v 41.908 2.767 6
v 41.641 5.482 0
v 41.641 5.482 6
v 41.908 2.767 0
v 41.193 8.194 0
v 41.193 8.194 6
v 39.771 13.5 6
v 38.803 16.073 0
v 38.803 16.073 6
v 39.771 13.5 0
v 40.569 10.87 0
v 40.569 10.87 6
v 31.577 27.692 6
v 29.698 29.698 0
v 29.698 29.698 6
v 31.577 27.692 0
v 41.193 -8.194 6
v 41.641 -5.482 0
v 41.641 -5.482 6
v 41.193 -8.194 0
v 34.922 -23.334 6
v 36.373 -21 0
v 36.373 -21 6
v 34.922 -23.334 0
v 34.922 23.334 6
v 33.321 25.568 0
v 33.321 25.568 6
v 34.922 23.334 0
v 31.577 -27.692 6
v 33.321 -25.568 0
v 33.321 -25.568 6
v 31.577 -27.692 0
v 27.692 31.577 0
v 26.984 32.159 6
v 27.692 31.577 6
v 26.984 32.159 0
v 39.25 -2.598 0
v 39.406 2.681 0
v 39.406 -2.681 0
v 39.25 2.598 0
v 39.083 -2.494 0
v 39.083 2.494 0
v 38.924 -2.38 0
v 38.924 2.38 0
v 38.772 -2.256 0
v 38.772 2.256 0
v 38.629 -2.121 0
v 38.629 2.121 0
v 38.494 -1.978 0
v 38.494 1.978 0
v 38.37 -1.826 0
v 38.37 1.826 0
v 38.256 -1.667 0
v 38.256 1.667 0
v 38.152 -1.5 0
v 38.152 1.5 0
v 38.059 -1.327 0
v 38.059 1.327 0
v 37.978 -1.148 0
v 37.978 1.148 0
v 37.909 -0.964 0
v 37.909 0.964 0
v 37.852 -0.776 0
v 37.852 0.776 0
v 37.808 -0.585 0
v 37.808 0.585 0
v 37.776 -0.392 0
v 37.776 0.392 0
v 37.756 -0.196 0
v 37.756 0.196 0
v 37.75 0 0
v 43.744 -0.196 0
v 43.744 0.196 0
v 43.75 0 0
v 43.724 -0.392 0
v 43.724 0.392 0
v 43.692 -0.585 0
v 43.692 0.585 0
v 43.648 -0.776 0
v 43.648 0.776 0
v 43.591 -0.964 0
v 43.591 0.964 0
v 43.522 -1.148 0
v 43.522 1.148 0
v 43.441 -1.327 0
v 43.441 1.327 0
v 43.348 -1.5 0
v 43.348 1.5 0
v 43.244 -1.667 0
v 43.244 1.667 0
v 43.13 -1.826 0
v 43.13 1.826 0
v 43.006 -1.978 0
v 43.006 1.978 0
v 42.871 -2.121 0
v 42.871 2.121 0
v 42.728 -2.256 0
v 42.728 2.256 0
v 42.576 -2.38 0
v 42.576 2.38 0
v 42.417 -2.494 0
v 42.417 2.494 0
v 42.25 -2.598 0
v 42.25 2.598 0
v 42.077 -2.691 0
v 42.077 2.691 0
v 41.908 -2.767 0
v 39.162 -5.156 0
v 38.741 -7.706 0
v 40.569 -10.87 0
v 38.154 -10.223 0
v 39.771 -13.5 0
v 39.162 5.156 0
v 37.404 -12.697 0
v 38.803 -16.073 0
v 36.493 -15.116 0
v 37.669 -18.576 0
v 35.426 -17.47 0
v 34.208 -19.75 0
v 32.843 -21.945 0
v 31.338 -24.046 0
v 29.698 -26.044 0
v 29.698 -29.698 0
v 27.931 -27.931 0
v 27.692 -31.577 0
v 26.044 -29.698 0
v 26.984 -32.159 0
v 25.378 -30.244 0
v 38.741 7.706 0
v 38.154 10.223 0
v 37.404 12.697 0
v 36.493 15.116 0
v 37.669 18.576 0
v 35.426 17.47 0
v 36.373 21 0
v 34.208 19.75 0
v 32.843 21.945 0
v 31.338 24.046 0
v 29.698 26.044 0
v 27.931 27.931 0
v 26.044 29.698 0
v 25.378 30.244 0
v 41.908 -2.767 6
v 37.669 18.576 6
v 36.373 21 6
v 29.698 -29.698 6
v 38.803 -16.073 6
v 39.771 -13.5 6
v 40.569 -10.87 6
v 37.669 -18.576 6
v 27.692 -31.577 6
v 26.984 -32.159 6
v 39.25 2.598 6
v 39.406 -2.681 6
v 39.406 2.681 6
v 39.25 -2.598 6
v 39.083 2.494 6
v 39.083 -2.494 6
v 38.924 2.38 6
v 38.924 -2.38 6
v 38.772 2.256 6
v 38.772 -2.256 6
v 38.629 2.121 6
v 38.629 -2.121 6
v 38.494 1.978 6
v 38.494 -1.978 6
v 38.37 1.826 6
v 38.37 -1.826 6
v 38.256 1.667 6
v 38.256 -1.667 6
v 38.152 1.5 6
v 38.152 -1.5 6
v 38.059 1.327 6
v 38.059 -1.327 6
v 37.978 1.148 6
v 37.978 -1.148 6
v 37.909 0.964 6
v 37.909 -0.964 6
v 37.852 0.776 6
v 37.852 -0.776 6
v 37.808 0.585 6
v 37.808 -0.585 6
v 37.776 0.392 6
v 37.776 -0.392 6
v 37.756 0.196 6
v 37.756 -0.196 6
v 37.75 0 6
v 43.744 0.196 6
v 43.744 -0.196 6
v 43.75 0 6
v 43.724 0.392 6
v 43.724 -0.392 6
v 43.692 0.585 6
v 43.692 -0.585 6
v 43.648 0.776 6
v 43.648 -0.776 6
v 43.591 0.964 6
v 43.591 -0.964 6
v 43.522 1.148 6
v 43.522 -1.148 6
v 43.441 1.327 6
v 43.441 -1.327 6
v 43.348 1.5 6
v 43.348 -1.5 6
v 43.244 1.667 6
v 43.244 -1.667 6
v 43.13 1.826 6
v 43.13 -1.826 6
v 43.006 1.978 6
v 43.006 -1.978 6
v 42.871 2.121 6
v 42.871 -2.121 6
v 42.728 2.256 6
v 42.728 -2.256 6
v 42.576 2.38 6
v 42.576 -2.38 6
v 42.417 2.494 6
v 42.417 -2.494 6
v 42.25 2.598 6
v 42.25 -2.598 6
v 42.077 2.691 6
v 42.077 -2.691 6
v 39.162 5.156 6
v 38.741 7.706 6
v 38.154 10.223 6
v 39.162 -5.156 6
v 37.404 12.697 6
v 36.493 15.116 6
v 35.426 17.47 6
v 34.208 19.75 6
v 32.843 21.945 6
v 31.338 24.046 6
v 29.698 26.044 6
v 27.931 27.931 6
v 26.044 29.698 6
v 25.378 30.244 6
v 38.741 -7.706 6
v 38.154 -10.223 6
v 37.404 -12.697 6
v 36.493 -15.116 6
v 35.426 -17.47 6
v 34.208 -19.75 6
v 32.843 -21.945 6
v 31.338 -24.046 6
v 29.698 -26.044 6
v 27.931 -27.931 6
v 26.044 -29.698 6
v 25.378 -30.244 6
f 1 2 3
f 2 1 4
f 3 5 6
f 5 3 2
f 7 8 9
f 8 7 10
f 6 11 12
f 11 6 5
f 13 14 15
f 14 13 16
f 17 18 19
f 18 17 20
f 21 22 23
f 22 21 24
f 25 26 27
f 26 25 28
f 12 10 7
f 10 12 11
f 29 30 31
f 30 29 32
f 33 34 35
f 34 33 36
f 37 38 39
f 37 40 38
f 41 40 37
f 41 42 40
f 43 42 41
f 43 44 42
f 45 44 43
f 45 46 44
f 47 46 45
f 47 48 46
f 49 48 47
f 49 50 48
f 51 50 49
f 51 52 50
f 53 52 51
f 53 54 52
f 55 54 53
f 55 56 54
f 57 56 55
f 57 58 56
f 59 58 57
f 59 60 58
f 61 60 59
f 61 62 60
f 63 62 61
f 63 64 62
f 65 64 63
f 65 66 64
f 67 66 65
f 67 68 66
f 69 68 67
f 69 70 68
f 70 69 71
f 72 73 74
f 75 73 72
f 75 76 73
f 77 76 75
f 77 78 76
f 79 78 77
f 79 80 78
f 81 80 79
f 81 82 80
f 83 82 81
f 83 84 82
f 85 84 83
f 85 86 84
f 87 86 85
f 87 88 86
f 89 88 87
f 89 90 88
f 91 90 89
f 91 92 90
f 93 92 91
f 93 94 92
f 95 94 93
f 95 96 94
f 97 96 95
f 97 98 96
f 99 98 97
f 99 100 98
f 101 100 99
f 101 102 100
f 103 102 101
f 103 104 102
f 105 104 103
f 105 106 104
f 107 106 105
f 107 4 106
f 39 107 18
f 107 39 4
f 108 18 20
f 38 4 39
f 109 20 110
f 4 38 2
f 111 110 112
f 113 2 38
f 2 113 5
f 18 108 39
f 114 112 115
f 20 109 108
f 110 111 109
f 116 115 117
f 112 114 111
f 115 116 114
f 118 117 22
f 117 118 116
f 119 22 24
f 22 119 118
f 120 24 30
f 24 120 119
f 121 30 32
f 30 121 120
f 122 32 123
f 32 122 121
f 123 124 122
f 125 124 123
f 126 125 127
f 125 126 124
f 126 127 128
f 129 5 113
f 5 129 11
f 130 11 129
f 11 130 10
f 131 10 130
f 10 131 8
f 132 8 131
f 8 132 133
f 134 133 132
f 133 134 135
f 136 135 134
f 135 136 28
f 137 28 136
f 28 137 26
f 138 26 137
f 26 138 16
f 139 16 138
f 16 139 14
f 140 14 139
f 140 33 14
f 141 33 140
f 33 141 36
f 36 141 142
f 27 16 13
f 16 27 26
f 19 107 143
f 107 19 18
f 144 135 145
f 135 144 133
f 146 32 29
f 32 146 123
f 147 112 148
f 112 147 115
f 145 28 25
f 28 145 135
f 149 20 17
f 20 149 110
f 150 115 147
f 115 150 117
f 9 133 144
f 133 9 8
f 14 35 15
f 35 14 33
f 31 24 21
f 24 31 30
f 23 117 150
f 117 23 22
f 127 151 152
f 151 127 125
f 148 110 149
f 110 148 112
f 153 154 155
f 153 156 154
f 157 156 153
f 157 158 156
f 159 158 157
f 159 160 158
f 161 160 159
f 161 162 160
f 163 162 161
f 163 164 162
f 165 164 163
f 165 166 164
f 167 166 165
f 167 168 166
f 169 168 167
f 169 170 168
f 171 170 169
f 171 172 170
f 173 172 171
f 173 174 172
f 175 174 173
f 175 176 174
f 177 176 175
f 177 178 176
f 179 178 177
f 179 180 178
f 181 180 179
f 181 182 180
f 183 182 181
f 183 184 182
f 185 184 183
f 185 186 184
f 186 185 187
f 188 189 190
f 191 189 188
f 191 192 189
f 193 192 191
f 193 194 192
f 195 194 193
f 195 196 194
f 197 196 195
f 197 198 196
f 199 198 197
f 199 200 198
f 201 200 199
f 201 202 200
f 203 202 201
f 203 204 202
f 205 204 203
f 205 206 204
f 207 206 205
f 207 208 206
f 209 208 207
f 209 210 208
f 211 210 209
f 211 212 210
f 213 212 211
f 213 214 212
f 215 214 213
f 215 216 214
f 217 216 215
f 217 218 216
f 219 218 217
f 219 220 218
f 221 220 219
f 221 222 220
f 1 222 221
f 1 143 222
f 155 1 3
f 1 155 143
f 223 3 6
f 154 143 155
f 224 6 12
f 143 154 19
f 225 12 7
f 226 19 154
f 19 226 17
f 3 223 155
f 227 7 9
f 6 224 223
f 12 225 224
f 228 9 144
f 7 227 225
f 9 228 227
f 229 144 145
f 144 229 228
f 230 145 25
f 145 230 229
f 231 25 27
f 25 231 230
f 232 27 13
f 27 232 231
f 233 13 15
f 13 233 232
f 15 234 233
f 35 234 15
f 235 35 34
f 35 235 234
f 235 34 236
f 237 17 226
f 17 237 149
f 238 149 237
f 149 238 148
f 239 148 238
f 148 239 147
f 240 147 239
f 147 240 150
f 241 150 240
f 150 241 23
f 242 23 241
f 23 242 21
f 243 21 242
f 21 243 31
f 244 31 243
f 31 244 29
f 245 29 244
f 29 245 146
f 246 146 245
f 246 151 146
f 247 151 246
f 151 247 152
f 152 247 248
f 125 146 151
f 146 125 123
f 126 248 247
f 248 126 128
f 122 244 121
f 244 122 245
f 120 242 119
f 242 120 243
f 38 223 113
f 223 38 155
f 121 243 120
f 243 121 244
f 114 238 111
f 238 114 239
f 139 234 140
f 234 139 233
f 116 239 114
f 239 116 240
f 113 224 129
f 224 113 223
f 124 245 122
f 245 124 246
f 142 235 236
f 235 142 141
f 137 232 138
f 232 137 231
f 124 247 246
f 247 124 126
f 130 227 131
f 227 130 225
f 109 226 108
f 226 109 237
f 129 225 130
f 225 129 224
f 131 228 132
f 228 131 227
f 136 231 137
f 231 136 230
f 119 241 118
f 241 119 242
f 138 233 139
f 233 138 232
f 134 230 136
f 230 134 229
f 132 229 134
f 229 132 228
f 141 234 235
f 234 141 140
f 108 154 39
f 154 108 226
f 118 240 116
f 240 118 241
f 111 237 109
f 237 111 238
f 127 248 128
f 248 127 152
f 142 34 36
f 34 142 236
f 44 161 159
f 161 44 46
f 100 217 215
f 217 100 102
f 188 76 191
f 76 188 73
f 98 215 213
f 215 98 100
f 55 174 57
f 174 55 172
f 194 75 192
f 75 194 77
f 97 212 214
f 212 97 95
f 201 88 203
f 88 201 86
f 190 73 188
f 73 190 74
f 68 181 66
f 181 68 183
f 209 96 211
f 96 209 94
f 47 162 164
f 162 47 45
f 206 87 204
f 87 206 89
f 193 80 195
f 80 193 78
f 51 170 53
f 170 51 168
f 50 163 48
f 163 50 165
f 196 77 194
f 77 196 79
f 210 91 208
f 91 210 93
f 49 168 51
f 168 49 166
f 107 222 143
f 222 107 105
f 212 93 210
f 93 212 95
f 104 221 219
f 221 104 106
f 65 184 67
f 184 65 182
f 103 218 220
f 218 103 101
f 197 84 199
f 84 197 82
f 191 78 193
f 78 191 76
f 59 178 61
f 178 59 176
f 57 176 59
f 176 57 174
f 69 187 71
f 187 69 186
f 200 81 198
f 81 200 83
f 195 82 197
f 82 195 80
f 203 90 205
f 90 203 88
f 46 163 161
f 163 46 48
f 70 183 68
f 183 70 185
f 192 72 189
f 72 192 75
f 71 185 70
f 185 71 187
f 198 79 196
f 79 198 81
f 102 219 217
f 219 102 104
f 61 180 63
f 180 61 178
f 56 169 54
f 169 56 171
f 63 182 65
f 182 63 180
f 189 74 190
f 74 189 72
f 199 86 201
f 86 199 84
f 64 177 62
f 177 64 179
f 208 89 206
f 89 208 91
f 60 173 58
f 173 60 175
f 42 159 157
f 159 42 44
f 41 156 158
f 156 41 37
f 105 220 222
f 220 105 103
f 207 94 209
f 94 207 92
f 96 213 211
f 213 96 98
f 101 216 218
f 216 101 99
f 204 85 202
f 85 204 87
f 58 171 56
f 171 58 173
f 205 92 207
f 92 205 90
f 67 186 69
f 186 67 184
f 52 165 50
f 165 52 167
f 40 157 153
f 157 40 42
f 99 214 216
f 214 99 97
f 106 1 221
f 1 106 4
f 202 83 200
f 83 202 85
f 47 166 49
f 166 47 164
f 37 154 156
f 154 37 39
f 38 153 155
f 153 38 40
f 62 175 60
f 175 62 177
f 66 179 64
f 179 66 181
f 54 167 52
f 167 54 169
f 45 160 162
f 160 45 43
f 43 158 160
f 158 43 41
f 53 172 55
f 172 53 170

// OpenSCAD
// IceDrone V1 - optional corner prop guard
// One printed per motor for low-energy indoor testing, per docs/03_MECHANICAL.md.
// Prop radius 38 mm (76 mm props); guard sits just outside the prop disc.

prop_radius     = 38;
guard_clearance = 4;         // gap between prop tip and guard ring
guard_radius    = prop_radius + guard_clearance;
ring_thickness  = 2.5;
ring_height     = 6;
arc_deg         = 100;       // corner guard covers one quadrant plus a bit
post_d          = 6;
mount_hole_d    = 2.2;
$fn             = 96;

module guard_ring_segment() {
    difference() {
        cylinder(r = guard_radius, h = ring_height);
        translate([0, 0, -0.1]) cylinder(r = guard_radius - ring_thickness, h = ring_height + 0.2);
    }
}

module arc_wedge() {
    // pie wedge from -arc_deg/2 to +arc_deg/2, centered on the +X axis
    linear_extrude(height = ring_height)
        polygon(points = concat(
            [[0, 0]],
            [for (a = [-arc_deg / 2 : 5 : arc_deg / 2]) [
                (guard_radius + 5) * cos(a),
                (guard_radius + 5) * sin(a)
            ]]
        ));
}

module prop_guard_corner() {
    mid_radius = guard_radius - ring_thickness / 2;
    union() {
        intersection() {
            guard_ring_segment();
            arc_wedge();
        }
        // mounting post, on the arc centerline, connects the guard back to the frame arm
        difference() {
            translate([mid_radius, 0, 0]) cylinder(d = post_d, h = ring_height);
            translate([mid_radius, 0, -0.1]) cylinder(d = mount_hole_d, h = ring_height + 0.2);
        }
    }
}

prop_guard_corner();
